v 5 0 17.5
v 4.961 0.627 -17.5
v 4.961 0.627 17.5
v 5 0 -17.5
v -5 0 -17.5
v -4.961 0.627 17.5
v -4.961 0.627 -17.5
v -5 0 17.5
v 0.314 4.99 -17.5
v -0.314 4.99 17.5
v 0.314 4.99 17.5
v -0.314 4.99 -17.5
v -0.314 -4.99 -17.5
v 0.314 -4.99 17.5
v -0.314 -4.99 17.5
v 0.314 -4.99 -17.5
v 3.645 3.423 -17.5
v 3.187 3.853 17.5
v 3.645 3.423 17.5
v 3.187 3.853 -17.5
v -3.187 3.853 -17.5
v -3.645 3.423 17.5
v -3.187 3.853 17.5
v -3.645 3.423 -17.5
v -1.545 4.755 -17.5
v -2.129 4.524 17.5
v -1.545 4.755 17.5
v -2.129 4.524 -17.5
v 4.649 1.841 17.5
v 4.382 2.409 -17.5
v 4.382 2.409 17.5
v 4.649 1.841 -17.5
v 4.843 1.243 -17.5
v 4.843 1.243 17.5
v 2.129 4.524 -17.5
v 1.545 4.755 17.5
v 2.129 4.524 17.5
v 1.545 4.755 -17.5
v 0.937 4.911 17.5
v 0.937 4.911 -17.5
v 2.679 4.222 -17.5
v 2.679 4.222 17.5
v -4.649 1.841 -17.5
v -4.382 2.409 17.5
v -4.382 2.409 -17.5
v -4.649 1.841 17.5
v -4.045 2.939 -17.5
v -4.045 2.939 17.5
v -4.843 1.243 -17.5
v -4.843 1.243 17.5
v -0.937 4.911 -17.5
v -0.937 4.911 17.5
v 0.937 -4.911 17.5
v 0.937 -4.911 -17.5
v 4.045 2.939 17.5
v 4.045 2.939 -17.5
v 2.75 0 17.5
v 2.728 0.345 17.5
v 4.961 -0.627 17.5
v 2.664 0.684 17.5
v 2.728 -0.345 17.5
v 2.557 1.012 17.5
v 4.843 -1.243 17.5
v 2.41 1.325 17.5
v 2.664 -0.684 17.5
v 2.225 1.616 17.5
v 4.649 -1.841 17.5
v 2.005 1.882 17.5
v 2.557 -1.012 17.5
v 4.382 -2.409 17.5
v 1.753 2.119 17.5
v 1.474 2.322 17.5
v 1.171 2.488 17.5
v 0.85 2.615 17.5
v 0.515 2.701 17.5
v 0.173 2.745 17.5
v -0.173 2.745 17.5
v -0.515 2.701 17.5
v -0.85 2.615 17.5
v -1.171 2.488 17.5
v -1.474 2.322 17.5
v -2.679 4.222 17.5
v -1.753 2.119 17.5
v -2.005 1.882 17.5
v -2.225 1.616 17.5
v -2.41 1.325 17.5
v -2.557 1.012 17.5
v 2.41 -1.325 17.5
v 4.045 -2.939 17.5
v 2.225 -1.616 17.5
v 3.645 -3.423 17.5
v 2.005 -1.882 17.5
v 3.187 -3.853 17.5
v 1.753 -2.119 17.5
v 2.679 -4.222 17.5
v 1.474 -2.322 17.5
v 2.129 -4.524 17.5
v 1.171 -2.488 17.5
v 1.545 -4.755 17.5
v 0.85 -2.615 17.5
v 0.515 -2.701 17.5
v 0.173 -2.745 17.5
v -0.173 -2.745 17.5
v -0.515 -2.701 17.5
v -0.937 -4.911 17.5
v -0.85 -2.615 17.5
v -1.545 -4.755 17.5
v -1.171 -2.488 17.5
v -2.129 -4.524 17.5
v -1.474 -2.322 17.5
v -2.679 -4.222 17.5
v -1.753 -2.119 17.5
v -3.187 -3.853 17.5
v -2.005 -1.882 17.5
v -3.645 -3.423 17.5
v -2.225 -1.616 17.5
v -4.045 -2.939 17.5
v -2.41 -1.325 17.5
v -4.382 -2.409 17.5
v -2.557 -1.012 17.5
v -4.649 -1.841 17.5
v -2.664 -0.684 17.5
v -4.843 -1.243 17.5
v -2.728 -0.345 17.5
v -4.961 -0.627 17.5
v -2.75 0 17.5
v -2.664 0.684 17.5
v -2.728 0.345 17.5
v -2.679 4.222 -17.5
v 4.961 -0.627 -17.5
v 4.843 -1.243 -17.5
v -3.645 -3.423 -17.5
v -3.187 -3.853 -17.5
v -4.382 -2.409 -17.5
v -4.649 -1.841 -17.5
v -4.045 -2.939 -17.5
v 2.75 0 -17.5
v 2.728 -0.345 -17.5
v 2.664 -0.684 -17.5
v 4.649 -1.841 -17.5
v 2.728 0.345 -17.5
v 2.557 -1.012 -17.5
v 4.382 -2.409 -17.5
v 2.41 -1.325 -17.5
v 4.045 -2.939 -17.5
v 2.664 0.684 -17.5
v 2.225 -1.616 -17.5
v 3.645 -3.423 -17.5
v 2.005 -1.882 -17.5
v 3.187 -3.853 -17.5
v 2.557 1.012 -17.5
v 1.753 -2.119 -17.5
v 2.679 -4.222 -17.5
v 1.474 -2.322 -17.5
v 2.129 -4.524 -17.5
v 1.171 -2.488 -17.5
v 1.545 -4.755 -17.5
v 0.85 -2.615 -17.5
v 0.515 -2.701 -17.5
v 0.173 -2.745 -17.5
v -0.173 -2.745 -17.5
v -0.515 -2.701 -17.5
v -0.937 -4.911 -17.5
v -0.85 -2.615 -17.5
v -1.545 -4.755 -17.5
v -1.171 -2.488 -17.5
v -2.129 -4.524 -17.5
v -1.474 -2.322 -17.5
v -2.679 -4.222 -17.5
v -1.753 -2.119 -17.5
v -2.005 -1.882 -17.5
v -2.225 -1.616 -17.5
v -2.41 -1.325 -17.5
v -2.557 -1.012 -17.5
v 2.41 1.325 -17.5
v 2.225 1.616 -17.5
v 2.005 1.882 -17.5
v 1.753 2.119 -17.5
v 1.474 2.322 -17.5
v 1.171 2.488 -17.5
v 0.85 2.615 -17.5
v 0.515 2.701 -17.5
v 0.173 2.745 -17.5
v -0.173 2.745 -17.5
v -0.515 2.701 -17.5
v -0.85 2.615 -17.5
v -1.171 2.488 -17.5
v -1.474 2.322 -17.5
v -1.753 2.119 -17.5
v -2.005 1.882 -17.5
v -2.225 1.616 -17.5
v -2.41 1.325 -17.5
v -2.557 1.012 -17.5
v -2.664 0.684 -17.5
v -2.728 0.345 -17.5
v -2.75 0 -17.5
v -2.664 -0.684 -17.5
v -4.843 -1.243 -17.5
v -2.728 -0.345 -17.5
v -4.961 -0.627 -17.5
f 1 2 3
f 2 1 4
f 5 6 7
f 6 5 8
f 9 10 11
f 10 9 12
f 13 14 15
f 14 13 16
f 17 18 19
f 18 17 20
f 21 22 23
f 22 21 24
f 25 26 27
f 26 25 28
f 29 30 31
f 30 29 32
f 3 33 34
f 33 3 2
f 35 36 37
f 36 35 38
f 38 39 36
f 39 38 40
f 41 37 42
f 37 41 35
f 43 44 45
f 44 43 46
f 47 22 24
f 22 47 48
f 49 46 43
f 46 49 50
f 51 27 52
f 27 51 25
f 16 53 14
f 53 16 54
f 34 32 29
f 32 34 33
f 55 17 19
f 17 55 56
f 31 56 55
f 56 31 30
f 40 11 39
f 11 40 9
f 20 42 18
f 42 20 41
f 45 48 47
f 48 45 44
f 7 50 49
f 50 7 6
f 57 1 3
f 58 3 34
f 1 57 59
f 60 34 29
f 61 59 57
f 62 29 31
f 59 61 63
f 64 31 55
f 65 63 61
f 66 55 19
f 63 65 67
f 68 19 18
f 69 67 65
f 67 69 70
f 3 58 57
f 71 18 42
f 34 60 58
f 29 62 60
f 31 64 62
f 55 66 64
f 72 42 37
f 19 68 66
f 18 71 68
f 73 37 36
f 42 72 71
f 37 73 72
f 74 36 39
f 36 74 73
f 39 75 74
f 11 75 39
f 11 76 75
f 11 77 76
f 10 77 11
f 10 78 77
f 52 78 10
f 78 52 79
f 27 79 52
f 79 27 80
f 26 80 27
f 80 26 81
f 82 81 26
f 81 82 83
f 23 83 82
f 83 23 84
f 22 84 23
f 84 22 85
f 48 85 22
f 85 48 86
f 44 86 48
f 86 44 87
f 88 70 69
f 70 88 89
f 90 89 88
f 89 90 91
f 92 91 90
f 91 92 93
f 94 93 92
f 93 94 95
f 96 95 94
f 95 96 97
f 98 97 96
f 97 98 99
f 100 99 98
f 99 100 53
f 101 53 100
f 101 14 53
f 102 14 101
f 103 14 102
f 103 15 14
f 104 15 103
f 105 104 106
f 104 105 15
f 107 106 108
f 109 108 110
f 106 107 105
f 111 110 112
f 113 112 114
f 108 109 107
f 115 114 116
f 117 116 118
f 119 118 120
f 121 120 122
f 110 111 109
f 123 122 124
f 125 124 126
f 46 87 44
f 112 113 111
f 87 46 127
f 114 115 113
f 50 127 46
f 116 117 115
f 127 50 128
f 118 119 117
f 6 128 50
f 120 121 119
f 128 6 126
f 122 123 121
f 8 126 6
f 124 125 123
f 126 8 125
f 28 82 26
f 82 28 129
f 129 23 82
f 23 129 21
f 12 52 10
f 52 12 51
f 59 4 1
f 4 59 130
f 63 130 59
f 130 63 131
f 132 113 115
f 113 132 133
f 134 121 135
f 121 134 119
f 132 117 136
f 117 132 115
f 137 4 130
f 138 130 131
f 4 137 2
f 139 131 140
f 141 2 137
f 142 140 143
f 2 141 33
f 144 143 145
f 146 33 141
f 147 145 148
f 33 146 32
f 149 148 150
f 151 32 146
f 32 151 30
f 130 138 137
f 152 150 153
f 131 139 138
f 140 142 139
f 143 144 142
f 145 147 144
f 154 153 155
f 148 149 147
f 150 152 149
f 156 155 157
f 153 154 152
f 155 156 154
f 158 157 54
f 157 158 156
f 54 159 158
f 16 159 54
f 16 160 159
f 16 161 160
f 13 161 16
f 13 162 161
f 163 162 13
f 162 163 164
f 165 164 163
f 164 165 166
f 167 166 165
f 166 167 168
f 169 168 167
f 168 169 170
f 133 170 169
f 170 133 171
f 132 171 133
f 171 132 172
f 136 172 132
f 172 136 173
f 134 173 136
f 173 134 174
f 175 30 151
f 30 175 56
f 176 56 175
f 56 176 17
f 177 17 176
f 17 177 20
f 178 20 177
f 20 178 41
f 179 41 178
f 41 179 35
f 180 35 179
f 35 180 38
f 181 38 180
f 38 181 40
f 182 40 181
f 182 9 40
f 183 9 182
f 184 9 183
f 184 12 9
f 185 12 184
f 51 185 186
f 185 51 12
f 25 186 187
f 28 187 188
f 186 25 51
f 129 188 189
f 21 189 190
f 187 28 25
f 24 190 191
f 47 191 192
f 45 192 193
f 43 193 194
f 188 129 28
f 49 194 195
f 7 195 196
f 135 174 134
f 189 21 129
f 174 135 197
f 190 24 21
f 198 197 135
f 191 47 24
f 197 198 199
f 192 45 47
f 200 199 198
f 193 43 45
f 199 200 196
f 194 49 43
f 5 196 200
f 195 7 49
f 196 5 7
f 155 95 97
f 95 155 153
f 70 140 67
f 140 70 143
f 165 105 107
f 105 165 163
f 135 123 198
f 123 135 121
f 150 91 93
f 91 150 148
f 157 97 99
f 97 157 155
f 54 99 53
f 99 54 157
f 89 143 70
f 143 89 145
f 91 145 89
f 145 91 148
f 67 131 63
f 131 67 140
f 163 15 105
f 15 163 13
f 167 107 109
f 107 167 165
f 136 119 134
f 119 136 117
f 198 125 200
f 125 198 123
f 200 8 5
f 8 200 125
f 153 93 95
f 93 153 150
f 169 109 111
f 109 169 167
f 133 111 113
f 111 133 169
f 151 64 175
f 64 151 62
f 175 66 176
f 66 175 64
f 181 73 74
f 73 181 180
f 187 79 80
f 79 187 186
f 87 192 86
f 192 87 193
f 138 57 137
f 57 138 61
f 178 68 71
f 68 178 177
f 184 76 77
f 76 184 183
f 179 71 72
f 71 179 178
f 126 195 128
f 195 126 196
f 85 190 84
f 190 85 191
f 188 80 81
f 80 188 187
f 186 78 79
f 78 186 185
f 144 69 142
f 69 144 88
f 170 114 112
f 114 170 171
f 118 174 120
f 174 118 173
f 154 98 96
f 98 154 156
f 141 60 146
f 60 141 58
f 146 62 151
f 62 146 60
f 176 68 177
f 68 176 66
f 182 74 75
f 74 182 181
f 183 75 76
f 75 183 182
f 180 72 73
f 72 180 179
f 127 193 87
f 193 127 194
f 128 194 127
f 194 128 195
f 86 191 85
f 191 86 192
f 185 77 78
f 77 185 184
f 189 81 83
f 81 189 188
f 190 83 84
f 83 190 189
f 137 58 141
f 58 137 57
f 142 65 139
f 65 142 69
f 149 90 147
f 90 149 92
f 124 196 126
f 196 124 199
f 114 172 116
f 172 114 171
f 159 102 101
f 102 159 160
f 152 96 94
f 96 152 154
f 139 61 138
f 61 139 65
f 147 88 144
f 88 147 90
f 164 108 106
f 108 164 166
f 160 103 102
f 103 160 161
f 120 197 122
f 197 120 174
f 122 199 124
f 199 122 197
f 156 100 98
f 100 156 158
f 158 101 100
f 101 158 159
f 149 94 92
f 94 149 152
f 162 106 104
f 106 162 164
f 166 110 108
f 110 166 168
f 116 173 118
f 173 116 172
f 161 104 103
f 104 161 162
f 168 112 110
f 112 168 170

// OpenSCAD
$fn = 50;


difference() {
	union() {
		translate(v = [0, 0, -17.5000000000]) {
			cylinder(h = 35, r = 5.0000000000);
		}
	}
	union() {
		translate(v = [0, 0, -100.0000000000]) {
			cylinder(h = 200, r = 2.7500000000);
		}
	}
}
